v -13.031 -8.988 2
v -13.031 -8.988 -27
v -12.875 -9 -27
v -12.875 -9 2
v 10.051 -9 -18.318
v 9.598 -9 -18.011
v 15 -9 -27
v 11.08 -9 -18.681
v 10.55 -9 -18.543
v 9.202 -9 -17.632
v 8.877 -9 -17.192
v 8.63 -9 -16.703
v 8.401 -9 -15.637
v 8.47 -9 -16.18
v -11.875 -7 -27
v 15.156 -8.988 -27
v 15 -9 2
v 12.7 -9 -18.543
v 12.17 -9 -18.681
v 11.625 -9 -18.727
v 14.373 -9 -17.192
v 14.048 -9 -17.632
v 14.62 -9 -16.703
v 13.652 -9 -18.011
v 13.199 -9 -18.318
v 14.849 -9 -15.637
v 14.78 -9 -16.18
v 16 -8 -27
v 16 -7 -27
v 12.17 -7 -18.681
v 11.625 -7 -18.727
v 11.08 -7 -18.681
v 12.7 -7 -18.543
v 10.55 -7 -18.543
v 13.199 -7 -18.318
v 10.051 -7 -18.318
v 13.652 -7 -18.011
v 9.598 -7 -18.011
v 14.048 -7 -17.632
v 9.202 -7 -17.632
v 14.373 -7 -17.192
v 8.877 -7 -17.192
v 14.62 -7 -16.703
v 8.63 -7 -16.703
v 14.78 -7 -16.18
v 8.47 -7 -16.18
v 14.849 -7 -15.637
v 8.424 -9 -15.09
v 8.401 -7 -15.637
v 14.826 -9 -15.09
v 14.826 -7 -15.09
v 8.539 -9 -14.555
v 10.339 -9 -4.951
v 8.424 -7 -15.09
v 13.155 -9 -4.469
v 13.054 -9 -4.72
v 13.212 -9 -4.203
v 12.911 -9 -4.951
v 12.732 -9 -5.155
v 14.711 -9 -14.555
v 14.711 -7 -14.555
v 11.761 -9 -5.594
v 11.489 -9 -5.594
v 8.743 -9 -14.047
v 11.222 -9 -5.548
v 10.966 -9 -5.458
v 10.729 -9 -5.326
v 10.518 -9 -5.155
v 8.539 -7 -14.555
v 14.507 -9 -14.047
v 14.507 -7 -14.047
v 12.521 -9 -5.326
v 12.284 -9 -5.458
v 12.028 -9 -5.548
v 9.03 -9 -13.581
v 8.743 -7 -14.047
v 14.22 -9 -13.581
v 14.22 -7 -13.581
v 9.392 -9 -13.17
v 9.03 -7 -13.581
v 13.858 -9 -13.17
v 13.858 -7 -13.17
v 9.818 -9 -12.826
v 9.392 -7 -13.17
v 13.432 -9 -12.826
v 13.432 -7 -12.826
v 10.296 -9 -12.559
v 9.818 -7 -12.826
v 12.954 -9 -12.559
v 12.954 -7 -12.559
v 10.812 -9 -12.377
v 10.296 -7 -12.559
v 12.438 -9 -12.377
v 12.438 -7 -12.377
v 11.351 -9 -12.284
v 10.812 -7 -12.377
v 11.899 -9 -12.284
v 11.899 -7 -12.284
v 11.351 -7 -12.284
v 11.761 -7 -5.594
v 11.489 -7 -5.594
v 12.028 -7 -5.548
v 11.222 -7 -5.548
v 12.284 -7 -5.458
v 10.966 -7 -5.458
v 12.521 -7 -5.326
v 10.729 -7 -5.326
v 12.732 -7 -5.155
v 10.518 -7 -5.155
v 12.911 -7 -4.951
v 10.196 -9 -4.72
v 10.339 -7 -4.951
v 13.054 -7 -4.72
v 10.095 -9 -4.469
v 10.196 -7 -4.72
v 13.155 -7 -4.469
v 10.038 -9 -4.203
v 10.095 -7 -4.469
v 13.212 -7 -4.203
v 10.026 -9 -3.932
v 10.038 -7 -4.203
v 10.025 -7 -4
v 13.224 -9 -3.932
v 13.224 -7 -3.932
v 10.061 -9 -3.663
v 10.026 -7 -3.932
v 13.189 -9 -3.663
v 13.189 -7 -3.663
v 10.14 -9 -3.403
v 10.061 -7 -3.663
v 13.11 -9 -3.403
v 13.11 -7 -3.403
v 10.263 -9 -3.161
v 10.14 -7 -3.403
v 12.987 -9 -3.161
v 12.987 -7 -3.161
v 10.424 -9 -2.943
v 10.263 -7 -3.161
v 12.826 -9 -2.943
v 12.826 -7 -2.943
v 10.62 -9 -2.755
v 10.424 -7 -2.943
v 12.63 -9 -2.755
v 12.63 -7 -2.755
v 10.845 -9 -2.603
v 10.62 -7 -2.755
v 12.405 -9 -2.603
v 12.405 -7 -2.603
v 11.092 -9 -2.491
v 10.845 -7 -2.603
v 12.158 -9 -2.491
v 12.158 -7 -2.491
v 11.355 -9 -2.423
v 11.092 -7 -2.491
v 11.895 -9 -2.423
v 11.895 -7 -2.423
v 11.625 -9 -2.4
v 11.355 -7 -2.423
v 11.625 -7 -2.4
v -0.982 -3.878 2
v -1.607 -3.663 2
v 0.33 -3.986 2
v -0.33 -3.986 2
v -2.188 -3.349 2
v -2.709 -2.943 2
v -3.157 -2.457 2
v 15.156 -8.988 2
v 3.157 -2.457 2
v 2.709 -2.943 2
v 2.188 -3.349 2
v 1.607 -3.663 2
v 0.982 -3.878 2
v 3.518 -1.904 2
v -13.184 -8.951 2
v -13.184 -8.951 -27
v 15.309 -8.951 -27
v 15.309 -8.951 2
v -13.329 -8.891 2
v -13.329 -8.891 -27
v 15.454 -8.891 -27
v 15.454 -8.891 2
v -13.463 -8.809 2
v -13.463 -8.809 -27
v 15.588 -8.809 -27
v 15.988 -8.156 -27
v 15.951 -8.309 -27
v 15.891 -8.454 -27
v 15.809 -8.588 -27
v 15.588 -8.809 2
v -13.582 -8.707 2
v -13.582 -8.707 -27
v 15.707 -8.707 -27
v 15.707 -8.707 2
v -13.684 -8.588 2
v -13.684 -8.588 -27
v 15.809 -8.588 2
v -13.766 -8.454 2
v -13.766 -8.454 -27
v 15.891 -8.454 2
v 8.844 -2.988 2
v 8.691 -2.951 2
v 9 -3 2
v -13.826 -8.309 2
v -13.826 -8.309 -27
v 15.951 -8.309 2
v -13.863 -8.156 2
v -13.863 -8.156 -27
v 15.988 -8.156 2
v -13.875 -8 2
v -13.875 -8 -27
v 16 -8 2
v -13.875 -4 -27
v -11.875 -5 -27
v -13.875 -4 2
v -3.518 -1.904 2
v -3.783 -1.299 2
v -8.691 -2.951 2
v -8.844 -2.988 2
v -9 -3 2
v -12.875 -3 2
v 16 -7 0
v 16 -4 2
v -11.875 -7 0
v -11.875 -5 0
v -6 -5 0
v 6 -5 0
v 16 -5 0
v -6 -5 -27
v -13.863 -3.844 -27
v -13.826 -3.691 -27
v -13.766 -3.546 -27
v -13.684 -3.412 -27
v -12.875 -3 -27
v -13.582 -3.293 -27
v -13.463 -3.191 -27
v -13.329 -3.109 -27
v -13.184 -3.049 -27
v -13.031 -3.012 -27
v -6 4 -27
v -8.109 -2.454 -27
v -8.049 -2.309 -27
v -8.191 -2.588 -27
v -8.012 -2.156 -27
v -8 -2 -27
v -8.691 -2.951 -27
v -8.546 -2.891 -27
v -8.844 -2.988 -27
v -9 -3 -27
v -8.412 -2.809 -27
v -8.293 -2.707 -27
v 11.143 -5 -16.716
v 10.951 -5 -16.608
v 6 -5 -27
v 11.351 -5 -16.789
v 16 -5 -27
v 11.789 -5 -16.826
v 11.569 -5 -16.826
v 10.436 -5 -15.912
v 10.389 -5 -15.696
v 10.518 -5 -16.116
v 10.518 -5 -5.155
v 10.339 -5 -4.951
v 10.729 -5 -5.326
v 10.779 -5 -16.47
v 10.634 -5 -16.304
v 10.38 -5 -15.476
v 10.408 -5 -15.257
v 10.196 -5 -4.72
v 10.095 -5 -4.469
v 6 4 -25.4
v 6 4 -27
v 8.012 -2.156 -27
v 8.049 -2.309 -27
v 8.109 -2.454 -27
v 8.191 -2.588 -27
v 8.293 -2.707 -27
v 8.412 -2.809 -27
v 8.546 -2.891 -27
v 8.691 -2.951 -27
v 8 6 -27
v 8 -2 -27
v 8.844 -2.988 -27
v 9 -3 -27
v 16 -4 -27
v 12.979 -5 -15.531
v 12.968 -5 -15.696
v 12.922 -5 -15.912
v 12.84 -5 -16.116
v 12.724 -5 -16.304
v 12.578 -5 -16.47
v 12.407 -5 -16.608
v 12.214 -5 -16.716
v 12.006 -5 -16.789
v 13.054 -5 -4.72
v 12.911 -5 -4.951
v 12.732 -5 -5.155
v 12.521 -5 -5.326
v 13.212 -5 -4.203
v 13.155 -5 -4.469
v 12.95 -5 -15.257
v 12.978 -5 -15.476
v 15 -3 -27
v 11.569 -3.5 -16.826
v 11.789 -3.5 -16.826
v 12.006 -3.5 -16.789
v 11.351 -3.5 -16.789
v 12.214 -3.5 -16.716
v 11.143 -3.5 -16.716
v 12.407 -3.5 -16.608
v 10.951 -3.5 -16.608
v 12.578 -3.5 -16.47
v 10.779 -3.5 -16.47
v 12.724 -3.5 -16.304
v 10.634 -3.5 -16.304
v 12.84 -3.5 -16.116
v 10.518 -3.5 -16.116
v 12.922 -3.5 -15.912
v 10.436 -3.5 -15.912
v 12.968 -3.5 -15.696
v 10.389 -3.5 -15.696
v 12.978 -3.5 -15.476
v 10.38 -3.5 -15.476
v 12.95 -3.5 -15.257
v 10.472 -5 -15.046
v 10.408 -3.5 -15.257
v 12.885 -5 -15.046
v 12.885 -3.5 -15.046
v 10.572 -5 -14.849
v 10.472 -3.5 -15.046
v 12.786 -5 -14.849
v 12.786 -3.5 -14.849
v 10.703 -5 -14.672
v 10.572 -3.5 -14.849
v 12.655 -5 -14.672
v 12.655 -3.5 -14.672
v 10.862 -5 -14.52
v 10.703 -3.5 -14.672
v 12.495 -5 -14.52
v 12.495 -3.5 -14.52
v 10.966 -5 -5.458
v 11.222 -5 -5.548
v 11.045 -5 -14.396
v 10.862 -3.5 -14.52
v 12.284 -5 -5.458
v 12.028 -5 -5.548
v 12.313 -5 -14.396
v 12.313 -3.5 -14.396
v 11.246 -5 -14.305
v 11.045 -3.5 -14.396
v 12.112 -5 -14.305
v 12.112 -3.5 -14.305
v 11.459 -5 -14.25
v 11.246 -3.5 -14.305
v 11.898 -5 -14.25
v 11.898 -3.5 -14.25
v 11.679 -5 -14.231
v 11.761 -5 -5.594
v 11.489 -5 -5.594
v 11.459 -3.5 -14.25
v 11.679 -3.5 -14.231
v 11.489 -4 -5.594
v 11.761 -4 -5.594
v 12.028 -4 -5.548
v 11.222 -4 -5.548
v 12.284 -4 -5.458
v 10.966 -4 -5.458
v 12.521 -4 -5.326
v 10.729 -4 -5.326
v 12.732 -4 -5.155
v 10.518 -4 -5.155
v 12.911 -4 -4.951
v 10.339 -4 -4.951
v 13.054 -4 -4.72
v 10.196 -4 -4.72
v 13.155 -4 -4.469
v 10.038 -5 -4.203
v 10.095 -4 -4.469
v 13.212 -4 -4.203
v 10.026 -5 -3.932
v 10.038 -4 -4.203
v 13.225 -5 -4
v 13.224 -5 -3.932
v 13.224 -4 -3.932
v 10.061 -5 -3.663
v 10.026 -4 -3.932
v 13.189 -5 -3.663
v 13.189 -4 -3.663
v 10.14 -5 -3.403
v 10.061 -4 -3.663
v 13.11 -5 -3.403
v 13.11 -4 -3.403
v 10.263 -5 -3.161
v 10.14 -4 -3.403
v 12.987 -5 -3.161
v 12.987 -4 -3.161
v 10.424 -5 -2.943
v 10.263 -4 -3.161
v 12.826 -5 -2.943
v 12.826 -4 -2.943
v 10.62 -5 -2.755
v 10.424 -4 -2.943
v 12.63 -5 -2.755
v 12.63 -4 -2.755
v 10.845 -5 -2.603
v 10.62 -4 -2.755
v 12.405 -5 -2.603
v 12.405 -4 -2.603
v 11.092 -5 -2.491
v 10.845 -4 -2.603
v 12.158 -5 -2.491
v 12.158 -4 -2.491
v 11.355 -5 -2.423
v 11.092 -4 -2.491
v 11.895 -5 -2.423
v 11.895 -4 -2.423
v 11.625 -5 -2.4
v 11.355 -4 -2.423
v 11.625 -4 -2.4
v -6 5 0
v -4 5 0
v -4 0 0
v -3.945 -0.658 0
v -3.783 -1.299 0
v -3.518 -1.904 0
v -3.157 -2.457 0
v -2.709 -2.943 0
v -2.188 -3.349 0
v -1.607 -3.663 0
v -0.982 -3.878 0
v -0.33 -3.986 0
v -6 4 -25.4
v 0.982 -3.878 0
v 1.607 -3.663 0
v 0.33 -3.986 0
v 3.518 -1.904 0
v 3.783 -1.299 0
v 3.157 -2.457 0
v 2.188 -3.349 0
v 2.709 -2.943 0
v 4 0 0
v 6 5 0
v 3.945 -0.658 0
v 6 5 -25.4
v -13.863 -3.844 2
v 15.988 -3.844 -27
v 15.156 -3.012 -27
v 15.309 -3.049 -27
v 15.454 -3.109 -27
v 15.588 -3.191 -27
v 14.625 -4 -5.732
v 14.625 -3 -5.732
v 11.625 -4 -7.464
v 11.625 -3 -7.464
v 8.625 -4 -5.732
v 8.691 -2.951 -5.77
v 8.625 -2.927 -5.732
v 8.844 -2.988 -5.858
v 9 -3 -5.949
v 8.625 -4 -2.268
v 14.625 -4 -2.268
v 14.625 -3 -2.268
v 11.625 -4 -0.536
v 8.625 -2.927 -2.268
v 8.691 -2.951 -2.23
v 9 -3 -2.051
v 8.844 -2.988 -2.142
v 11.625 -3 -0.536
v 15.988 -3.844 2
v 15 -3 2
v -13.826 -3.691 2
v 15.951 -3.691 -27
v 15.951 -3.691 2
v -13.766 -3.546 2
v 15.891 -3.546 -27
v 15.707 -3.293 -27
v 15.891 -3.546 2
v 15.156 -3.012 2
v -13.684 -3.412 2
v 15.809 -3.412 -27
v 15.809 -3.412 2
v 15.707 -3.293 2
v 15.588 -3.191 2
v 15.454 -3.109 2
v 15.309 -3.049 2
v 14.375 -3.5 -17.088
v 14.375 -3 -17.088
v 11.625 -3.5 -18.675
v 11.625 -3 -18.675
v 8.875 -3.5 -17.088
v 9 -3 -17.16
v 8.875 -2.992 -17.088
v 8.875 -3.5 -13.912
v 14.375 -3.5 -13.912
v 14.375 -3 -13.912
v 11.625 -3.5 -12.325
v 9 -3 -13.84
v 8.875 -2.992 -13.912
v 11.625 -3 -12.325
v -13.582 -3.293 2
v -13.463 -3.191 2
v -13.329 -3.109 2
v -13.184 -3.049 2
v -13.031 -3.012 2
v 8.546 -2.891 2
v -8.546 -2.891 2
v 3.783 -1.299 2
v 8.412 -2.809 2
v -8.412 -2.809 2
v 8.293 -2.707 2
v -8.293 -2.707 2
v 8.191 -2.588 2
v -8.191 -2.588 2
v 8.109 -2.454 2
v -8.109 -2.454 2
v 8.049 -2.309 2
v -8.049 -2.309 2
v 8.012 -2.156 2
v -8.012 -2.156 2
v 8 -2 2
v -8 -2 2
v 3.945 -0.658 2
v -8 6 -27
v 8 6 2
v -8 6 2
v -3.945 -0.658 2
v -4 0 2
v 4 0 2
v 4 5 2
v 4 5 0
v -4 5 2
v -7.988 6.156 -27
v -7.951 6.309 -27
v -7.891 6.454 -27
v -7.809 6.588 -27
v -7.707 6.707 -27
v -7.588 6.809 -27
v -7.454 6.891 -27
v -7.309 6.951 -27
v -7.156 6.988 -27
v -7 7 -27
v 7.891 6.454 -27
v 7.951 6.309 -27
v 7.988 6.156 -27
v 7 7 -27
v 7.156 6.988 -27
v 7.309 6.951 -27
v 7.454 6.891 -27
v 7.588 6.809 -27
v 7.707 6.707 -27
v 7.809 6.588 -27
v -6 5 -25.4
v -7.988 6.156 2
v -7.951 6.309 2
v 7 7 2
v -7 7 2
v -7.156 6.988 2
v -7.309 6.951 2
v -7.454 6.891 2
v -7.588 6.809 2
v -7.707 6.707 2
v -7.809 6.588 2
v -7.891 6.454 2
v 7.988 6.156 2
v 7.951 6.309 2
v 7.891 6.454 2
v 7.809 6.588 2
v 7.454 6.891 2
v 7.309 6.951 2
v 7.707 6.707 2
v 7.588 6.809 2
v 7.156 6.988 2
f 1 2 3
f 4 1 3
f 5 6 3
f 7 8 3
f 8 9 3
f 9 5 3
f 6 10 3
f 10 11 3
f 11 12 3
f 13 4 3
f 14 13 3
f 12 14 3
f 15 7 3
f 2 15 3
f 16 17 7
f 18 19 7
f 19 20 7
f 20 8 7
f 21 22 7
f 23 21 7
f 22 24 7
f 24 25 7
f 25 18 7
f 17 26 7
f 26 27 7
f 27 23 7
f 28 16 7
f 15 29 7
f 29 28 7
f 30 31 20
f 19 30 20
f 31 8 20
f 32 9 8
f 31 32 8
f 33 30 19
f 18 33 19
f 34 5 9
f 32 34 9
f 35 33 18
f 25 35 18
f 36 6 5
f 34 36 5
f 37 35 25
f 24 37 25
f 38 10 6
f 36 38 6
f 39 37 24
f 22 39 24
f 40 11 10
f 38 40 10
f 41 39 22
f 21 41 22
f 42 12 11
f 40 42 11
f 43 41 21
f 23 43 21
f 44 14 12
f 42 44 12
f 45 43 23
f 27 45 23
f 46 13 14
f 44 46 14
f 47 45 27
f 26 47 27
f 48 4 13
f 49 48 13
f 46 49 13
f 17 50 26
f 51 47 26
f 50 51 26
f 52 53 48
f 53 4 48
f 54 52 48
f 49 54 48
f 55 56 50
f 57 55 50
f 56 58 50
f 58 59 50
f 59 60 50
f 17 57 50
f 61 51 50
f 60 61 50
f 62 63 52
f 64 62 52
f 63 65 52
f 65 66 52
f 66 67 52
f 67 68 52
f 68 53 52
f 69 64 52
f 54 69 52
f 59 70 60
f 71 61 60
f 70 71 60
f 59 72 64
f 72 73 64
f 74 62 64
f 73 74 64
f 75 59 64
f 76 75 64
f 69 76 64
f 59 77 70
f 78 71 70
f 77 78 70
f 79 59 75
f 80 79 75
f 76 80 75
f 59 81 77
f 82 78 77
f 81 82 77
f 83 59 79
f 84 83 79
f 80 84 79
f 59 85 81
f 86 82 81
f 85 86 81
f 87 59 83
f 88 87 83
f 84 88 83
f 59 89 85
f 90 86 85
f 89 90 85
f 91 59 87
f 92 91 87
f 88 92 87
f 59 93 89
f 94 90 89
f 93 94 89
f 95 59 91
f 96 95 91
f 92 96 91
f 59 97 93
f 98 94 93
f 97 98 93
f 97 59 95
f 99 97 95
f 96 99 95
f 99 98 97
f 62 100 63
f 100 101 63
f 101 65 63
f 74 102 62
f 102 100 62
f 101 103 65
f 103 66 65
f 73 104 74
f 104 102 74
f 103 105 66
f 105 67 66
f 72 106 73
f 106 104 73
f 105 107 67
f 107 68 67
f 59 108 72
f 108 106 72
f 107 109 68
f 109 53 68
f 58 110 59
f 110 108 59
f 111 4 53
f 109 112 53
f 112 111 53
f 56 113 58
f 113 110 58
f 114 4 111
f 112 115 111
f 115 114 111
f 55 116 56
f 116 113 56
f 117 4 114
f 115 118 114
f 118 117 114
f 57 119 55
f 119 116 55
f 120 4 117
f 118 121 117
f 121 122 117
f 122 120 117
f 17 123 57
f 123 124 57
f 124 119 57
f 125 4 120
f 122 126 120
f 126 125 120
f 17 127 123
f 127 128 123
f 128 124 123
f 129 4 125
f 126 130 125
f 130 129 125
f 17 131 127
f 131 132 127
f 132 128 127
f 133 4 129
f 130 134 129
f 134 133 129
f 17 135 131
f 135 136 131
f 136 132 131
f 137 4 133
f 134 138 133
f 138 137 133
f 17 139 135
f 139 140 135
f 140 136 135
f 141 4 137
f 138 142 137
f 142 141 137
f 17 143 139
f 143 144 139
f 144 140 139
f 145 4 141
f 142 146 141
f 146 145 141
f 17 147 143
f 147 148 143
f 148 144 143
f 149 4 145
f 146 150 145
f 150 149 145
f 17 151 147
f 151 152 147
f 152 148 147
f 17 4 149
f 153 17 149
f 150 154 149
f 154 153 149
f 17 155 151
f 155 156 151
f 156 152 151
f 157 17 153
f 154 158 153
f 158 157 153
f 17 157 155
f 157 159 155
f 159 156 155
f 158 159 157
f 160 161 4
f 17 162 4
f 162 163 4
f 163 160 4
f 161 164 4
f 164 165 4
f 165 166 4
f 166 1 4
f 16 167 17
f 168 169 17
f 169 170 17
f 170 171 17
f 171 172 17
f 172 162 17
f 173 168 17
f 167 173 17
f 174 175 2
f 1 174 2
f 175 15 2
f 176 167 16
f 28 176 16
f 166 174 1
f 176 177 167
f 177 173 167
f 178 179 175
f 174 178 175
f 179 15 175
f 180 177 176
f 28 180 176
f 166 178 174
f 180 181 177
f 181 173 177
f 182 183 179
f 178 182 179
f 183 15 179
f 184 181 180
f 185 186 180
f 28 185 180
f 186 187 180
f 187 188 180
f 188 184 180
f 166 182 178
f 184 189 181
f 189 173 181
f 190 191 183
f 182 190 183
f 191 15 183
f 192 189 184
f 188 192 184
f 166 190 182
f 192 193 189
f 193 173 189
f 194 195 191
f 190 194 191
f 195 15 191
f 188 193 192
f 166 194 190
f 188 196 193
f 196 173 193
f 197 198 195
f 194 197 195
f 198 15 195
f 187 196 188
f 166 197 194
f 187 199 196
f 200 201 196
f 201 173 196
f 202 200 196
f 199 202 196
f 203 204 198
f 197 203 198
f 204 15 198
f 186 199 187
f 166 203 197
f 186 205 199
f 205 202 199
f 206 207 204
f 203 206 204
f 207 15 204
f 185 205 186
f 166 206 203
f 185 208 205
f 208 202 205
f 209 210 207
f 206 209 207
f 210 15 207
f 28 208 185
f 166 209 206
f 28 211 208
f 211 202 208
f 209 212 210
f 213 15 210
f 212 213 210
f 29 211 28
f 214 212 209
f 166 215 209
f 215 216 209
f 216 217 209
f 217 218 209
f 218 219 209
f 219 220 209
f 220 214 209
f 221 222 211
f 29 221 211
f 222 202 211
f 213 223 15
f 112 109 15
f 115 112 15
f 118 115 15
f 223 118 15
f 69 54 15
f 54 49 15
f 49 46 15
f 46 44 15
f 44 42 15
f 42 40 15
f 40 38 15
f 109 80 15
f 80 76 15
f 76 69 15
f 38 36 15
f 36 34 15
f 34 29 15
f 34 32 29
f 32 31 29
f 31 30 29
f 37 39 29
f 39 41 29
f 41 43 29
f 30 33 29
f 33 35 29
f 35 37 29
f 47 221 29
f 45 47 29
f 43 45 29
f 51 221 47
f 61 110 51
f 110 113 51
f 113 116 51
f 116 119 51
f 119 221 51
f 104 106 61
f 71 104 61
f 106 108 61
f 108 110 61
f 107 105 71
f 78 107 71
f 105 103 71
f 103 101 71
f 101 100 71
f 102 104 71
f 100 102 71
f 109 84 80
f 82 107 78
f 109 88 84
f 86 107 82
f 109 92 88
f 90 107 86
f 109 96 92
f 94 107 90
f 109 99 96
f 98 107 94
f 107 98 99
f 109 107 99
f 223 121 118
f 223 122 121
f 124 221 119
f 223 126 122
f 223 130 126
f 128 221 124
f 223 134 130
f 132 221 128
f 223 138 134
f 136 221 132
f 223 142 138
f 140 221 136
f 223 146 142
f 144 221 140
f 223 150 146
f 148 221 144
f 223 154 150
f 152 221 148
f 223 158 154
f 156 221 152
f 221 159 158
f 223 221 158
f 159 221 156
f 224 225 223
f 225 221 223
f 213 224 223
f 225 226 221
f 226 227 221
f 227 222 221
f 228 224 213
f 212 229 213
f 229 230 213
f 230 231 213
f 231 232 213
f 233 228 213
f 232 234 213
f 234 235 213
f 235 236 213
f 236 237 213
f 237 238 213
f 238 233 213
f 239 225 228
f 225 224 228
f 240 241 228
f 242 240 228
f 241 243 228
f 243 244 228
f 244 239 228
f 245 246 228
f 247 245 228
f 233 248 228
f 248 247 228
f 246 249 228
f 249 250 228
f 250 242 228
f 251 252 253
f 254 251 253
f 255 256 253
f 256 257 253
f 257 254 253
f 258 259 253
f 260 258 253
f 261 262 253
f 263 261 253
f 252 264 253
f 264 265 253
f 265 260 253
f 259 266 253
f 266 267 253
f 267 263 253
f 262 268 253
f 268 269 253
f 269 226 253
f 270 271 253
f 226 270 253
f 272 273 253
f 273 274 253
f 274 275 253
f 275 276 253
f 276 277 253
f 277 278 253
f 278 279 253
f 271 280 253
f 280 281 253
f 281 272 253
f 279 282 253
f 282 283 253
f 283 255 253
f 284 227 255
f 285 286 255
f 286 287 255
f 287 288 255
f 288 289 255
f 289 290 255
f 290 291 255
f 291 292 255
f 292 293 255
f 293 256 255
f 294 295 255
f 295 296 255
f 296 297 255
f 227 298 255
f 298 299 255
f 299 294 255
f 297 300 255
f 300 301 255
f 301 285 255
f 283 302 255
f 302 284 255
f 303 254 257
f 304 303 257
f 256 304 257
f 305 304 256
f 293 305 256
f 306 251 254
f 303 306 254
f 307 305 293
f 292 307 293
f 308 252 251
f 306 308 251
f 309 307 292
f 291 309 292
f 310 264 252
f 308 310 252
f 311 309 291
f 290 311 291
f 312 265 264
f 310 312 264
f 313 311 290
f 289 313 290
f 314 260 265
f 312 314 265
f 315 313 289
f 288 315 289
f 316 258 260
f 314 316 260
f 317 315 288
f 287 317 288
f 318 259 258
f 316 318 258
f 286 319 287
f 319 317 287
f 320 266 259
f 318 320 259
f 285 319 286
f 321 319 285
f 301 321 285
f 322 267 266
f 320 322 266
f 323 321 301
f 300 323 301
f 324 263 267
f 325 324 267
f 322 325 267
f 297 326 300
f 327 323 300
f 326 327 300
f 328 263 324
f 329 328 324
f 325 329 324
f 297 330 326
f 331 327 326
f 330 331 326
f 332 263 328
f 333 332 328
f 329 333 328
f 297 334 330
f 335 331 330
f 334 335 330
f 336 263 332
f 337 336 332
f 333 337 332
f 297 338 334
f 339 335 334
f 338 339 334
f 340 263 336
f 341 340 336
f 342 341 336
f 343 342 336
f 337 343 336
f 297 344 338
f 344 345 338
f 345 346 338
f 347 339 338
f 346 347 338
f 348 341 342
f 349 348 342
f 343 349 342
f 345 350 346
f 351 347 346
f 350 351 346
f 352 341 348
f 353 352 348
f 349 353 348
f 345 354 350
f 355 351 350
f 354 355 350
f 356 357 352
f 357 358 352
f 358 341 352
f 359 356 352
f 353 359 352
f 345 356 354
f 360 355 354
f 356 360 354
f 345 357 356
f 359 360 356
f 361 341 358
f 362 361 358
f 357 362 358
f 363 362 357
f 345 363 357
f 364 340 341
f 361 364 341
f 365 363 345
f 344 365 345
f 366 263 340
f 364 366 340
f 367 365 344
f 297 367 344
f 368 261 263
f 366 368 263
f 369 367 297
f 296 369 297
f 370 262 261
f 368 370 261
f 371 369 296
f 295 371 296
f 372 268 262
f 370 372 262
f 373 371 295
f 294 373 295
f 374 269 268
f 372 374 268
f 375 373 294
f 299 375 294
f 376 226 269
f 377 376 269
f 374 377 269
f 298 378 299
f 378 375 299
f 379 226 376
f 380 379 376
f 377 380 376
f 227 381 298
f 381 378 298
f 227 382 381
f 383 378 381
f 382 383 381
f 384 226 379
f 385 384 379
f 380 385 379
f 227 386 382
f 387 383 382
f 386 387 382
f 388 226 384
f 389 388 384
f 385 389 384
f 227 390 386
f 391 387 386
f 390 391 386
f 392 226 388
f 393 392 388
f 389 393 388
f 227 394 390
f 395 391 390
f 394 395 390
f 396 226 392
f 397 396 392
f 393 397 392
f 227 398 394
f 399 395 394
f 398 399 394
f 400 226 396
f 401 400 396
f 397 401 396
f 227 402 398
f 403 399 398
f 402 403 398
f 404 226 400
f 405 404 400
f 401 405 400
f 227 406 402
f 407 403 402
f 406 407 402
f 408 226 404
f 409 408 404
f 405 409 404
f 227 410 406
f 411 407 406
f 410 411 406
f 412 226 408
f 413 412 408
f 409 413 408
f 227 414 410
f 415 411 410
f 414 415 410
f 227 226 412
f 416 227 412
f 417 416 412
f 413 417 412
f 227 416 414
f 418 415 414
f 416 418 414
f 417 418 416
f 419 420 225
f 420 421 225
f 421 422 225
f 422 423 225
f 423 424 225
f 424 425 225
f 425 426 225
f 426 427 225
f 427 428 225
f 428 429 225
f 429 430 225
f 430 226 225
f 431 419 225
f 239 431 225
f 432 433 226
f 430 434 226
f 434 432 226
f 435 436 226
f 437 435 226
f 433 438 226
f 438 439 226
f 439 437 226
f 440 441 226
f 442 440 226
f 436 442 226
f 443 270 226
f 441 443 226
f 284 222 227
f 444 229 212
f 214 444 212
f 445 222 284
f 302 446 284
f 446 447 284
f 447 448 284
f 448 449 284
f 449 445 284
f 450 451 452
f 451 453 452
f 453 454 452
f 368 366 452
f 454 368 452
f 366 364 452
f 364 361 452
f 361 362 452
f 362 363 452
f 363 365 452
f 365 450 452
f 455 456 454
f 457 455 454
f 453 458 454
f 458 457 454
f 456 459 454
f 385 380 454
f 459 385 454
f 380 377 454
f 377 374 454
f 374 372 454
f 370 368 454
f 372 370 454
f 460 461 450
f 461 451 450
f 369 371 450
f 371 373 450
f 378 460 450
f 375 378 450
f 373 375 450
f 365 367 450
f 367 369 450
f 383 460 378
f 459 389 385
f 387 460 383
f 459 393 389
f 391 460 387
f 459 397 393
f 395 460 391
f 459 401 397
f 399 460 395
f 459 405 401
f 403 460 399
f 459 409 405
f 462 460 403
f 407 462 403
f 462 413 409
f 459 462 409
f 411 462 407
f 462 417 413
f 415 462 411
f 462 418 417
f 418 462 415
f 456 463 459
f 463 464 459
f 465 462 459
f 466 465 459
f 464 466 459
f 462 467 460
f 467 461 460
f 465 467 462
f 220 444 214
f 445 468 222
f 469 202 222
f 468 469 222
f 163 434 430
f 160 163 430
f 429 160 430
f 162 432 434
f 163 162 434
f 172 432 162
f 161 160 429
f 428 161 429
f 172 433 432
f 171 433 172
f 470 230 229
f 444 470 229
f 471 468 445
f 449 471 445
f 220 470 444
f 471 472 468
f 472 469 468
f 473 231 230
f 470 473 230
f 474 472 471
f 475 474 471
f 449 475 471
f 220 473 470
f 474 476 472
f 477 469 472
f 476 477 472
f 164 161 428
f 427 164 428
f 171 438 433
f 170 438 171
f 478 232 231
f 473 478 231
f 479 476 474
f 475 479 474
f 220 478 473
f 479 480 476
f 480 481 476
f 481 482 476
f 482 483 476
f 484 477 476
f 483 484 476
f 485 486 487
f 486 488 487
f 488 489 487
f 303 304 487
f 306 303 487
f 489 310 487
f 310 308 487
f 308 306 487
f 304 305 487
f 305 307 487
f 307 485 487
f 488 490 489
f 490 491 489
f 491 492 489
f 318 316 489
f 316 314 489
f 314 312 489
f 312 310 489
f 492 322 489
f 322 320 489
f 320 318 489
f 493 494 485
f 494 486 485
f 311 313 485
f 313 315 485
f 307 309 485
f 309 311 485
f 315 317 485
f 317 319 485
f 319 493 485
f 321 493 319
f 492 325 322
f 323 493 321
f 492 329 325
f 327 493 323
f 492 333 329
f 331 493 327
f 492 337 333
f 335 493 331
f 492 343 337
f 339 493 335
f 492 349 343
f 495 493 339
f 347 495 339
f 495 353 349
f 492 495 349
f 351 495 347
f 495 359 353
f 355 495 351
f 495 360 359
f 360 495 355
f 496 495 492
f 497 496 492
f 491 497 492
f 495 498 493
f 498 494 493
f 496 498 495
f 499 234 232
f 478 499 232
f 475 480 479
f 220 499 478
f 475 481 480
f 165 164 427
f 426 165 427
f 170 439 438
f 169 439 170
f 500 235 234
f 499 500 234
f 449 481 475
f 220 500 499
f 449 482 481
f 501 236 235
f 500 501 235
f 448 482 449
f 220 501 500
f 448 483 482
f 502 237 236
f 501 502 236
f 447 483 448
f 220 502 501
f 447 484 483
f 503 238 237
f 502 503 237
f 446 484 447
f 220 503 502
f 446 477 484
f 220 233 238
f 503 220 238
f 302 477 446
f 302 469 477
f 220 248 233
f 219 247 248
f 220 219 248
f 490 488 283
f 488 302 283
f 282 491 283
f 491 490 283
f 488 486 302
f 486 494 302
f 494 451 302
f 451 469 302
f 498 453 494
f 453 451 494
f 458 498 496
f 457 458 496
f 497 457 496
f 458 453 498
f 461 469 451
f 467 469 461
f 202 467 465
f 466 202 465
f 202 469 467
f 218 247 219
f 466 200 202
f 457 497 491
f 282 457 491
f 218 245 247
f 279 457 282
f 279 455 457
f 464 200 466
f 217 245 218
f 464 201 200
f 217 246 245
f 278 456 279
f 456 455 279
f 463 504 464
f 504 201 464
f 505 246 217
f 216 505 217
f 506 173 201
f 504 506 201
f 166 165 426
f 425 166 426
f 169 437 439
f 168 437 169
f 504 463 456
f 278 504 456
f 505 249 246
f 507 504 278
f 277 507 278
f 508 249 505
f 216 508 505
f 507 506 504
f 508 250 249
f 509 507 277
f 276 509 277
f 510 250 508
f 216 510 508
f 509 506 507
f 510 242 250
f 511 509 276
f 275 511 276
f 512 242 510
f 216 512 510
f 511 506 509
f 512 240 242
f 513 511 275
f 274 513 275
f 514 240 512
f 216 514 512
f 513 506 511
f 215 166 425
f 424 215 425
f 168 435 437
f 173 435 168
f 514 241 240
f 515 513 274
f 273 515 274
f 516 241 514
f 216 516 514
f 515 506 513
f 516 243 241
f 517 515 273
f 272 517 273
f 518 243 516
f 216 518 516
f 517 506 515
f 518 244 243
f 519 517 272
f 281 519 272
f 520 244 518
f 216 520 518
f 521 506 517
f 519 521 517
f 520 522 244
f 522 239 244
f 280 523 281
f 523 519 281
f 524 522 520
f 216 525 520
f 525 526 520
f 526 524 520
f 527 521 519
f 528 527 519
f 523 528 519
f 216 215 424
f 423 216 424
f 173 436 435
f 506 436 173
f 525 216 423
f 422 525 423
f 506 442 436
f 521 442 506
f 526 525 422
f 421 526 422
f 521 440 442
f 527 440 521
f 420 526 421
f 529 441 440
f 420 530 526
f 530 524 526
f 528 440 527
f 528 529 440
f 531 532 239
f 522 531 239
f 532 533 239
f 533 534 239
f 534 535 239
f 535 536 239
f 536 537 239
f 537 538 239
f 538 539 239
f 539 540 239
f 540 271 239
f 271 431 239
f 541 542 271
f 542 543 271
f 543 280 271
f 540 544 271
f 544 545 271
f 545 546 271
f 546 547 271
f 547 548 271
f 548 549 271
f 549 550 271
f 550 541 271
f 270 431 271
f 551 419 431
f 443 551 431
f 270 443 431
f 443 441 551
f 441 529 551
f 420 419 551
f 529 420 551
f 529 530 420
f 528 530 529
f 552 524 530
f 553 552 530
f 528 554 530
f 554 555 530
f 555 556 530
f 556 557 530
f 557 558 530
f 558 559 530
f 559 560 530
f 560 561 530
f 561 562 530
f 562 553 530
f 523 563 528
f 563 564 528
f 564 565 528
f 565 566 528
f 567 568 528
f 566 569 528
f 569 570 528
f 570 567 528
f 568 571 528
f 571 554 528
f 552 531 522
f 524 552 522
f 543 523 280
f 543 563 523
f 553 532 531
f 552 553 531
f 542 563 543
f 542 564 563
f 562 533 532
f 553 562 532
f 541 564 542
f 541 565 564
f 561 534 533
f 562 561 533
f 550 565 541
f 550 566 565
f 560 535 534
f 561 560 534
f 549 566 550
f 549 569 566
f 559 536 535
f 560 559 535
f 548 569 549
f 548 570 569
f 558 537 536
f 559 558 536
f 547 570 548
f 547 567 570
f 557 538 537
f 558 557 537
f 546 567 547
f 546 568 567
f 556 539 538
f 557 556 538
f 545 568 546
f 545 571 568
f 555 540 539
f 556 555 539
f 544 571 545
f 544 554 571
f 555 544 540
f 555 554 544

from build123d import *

# Parameters (mm, degrees)
EXTRUDE_1_DEPTH          = 2
EXTRUDE_2_DEPTH          = 27
SKETCH_4_R               = 3.227350269
CUT_EXTRUDE_1_DEPTH      = 2
CUT_EXTRUDE_2_DEPTH      = 11
CUT_EXTRUDE_2_DEPTH_BACK = 0.5
CUT_EXTRUDE_3_DEPTH      = 11
CUT_EXTRUDE_3_DEPTH_BACK = 1
SKETCH_8_W               = 12
SKETCH_8_H               = 1
EXTRUDE_3_DEPTH          = 1.6
SKETCH_10_R              = 1.6
CUT_EXTRUDE_4_DEPTH      = 6
SKETCH_11_R              = 1.3
CUT_EXTRUDE_5_DEPTH      = 6.5


with BuildPart() as part:
    # 草图1 → 凸台-拉伸1 (new body)
    with BuildSketch(Plane.XY):
        with BuildLine():
            Line((-9, -3), (-12.875, -3))
            ThreePointArc((-12.875, -3), (-13.582106781, -3.292893219), (-13.875, -4))
            Line((-13.875, -4), (-13.875, -8))
            ThreePointArc((-13.875, -8), (-13.582106781, -8.707106781), (-12.875, -9))
            Line((-12.875, -9), (15, -9))
            ThreePointArc((15, -9), (15.707106781, -8.707106781), (16, -8))
            Line((16, -8), (16, -4))
            ThreePointArc((16, -4), (15.707106781, -3.292893219), (15, -3))
            Line((15, -3), (9, -3))
            ThreePointArc((9, -3), (8.292893219, -2.707106781), (8, -2))
            Line((8, -2), (8, 6))
            ThreePointArc((8, 6), (7.707106781, 6.707106781), (7, 7))
            Line((7, 7), (-7, 7))
            ThreePointArc((-7, 7), (-7.707106781, 6.707106781), (-8, 6))
            Line((-8, 6), (-8, -2))
            ThreePointArc((-8, -2), (-8.292893219, -2.707106781), (-9, -3))
        make_face()
        with BuildLine():
            Line((-4, 5), (4, 5))
            Line((4, 5), (4, 0))
            ThreePointArc((4, 0), (0, -4), (-4, 0))
            Line((-4, 0), (-4, 5))
        make_face(mode=Mode.SUBTRACT)
    extrude(amount=EXTRUDE_1_DEPTH)

    # 草图2 → 凸台-拉伸2 (add)
    with BuildSketch(Plane(origin=(0, 0, 0), x_dir=(-1, 0, 0), z_dir=(0, 0, -1))):
        with BuildLine():
            Line((-6, 4.5), (-6, 5))
            Line((-6, 5), (-5.5, 5))
            Line((-5.5, 5), (5.5, 5))
            Line((5.5, 5), (6, 5))
            Line((6, 5), (6, 4.5))
            Line((6, 4.5), (6, -4.5))
            Line((6, -4.5), (6, -5))
            Line((6, -5), (11.875, -5))
            Line((11.875, -5), (11.875, -7))
            Line((11.875, -7), (-16, -7))
            Line((-16, -7), (-16, -8))
            ThreePointArc((-16, -8), (-15.707106781, -8.707106781), (-15, -9))
            Line((-15, -9), (12.875, -9))
            ThreePointArc((12.875, -9), (13.582106781, -8.707106781), (13.875, -8))
            Line((13.875, -8), (13.875, -4))
            ThreePointArc((13.875, -4), (13.582106781, -3.292893219), (12.875, -3))
            Line((12.875, -3), (9, -3))
            ThreePointArc((9, -3), (8.292893219, -2.707106781), (8, -2))
            Line((8, -2), (8, 6))
            ThreePointArc((8, 6), (7.707106781, 6.707106781), (7, 7))
            Line((7, 7), (-7, 7))
            ThreePointArc((-7, 7), (-7.707106781, 6.707106781), (-8, 6))
            Line((-8, 6), (-8, -2))
            ThreePointArc((-8, -2), (-8.292893219, -2.707106781), (-9, -3))
            Line((-9, -3), (-15, -3))
            ThreePointArc((-15, -3), (-15.707106781, -3.292893219), (-16, -4))
            Line((-16, -4), (-16, -5))
            Line((-16, -5), (-6, -5))
            Line((-6, -5), (-6, -4.5))
            Line((-6, -4.5), (-6, 4.5))
        make_face()
    extrude(amount=EXTRUDE_2_DEPTH)

    # 草图4 → 切除-拉伸1 (cut)
    with BuildSketch(Plane.XZ.offset(9)):
        with Locations((11.625, -15.5)):
            Circle(SKETCH_4_R)
    extrude(amount=-CUT_EXTRUDE_1_DEPTH, mode=Mode.SUBTRACT)

    # 草图5 → 切除-拉伸2 (cut, two sides)
    with BuildSketch(Plane(origin=(0, -3, 0), x_dir=(1, 0, 0), z_dir=(0, 1, 0))) as cut_extrude_2_sk:
        Polygon((11.625, 18.675426481), (8.875, 17.08771324), (8.875, 13.91228676), (11.625, 12.324573519), (14.375, 13.91228676), (14.375, 17.08771324), align=None)
    extrude(amount=CUT_EXTRUDE_2_DEPTH, mode=Mode.SUBTRACT)
    extrude(cut_extrude_2_sk.sketch, amount=-CUT_EXTRUDE_2_DEPTH_BACK, mode=Mode.SUBTRACT)

    # 草图6 → 切除-拉伸3 (cut, two sides)
    with BuildSketch(Plane(origin=(0, -3, 0), x_dir=(1, 0, 0), z_dir=(0, 1, 0))) as cut_extrude_3_sk:
        Polygon((14.625, 2.267949192), (14.625, 5.732050808), (11.625, 7.464101615), (8.625, 5.732050808), (8.625, 2.267949192), (11.625, 0.535898385), align=None)
    extrude(amount=CUT_EXTRUDE_3_DEPTH, mode=Mode.SUBTRACT)
    extrude(cut_extrude_3_sk.sketch, amount=-CUT_EXTRUDE_3_DEPTH_BACK, mode=Mode.SUBTRACT)

    # 草图8 → 凸台-拉伸3 (add)
    with BuildSketch(Plane(origin=(0, 0, -27), x_dir=(-1, 0, 0), z_dir=(0, 0, -1))):
        with Locations((0, 4.5)):
            Rectangle(SKETCH_8_W, SKETCH_8_H)
    extrude(amount=-EXTRUDE_3_DEPTH)

    # 草图10 → 切除-拉伸4 (cut, through all)
    with BuildSketch(Plane(origin=(0, -4, 0), x_dir=(1, 0, 0), z_dir=(0, 1, 0))):
        with Locations((11.625, 4)):
            Circle(SKETCH_10_R)
    extrude(amount=-CUT_EXTRUDE_4_DEPTH, mode=Mode.SUBTRACT)

    # 草图11 → 切除-拉伸5 (cut, through all)
    with BuildSketch(Plane(origin=(0, -3.5, 0), x_dir=(1, 0, 0), z_dir=(0, 1, 0))):
        with Locations((11.678753785, 15.531034762)):
            Circle(SKETCH_11_R)
    extrude(amount=-CUT_EXTRUDE_5_DEPTH, mode=Mode.SUBTRACT)


solid = part.part
